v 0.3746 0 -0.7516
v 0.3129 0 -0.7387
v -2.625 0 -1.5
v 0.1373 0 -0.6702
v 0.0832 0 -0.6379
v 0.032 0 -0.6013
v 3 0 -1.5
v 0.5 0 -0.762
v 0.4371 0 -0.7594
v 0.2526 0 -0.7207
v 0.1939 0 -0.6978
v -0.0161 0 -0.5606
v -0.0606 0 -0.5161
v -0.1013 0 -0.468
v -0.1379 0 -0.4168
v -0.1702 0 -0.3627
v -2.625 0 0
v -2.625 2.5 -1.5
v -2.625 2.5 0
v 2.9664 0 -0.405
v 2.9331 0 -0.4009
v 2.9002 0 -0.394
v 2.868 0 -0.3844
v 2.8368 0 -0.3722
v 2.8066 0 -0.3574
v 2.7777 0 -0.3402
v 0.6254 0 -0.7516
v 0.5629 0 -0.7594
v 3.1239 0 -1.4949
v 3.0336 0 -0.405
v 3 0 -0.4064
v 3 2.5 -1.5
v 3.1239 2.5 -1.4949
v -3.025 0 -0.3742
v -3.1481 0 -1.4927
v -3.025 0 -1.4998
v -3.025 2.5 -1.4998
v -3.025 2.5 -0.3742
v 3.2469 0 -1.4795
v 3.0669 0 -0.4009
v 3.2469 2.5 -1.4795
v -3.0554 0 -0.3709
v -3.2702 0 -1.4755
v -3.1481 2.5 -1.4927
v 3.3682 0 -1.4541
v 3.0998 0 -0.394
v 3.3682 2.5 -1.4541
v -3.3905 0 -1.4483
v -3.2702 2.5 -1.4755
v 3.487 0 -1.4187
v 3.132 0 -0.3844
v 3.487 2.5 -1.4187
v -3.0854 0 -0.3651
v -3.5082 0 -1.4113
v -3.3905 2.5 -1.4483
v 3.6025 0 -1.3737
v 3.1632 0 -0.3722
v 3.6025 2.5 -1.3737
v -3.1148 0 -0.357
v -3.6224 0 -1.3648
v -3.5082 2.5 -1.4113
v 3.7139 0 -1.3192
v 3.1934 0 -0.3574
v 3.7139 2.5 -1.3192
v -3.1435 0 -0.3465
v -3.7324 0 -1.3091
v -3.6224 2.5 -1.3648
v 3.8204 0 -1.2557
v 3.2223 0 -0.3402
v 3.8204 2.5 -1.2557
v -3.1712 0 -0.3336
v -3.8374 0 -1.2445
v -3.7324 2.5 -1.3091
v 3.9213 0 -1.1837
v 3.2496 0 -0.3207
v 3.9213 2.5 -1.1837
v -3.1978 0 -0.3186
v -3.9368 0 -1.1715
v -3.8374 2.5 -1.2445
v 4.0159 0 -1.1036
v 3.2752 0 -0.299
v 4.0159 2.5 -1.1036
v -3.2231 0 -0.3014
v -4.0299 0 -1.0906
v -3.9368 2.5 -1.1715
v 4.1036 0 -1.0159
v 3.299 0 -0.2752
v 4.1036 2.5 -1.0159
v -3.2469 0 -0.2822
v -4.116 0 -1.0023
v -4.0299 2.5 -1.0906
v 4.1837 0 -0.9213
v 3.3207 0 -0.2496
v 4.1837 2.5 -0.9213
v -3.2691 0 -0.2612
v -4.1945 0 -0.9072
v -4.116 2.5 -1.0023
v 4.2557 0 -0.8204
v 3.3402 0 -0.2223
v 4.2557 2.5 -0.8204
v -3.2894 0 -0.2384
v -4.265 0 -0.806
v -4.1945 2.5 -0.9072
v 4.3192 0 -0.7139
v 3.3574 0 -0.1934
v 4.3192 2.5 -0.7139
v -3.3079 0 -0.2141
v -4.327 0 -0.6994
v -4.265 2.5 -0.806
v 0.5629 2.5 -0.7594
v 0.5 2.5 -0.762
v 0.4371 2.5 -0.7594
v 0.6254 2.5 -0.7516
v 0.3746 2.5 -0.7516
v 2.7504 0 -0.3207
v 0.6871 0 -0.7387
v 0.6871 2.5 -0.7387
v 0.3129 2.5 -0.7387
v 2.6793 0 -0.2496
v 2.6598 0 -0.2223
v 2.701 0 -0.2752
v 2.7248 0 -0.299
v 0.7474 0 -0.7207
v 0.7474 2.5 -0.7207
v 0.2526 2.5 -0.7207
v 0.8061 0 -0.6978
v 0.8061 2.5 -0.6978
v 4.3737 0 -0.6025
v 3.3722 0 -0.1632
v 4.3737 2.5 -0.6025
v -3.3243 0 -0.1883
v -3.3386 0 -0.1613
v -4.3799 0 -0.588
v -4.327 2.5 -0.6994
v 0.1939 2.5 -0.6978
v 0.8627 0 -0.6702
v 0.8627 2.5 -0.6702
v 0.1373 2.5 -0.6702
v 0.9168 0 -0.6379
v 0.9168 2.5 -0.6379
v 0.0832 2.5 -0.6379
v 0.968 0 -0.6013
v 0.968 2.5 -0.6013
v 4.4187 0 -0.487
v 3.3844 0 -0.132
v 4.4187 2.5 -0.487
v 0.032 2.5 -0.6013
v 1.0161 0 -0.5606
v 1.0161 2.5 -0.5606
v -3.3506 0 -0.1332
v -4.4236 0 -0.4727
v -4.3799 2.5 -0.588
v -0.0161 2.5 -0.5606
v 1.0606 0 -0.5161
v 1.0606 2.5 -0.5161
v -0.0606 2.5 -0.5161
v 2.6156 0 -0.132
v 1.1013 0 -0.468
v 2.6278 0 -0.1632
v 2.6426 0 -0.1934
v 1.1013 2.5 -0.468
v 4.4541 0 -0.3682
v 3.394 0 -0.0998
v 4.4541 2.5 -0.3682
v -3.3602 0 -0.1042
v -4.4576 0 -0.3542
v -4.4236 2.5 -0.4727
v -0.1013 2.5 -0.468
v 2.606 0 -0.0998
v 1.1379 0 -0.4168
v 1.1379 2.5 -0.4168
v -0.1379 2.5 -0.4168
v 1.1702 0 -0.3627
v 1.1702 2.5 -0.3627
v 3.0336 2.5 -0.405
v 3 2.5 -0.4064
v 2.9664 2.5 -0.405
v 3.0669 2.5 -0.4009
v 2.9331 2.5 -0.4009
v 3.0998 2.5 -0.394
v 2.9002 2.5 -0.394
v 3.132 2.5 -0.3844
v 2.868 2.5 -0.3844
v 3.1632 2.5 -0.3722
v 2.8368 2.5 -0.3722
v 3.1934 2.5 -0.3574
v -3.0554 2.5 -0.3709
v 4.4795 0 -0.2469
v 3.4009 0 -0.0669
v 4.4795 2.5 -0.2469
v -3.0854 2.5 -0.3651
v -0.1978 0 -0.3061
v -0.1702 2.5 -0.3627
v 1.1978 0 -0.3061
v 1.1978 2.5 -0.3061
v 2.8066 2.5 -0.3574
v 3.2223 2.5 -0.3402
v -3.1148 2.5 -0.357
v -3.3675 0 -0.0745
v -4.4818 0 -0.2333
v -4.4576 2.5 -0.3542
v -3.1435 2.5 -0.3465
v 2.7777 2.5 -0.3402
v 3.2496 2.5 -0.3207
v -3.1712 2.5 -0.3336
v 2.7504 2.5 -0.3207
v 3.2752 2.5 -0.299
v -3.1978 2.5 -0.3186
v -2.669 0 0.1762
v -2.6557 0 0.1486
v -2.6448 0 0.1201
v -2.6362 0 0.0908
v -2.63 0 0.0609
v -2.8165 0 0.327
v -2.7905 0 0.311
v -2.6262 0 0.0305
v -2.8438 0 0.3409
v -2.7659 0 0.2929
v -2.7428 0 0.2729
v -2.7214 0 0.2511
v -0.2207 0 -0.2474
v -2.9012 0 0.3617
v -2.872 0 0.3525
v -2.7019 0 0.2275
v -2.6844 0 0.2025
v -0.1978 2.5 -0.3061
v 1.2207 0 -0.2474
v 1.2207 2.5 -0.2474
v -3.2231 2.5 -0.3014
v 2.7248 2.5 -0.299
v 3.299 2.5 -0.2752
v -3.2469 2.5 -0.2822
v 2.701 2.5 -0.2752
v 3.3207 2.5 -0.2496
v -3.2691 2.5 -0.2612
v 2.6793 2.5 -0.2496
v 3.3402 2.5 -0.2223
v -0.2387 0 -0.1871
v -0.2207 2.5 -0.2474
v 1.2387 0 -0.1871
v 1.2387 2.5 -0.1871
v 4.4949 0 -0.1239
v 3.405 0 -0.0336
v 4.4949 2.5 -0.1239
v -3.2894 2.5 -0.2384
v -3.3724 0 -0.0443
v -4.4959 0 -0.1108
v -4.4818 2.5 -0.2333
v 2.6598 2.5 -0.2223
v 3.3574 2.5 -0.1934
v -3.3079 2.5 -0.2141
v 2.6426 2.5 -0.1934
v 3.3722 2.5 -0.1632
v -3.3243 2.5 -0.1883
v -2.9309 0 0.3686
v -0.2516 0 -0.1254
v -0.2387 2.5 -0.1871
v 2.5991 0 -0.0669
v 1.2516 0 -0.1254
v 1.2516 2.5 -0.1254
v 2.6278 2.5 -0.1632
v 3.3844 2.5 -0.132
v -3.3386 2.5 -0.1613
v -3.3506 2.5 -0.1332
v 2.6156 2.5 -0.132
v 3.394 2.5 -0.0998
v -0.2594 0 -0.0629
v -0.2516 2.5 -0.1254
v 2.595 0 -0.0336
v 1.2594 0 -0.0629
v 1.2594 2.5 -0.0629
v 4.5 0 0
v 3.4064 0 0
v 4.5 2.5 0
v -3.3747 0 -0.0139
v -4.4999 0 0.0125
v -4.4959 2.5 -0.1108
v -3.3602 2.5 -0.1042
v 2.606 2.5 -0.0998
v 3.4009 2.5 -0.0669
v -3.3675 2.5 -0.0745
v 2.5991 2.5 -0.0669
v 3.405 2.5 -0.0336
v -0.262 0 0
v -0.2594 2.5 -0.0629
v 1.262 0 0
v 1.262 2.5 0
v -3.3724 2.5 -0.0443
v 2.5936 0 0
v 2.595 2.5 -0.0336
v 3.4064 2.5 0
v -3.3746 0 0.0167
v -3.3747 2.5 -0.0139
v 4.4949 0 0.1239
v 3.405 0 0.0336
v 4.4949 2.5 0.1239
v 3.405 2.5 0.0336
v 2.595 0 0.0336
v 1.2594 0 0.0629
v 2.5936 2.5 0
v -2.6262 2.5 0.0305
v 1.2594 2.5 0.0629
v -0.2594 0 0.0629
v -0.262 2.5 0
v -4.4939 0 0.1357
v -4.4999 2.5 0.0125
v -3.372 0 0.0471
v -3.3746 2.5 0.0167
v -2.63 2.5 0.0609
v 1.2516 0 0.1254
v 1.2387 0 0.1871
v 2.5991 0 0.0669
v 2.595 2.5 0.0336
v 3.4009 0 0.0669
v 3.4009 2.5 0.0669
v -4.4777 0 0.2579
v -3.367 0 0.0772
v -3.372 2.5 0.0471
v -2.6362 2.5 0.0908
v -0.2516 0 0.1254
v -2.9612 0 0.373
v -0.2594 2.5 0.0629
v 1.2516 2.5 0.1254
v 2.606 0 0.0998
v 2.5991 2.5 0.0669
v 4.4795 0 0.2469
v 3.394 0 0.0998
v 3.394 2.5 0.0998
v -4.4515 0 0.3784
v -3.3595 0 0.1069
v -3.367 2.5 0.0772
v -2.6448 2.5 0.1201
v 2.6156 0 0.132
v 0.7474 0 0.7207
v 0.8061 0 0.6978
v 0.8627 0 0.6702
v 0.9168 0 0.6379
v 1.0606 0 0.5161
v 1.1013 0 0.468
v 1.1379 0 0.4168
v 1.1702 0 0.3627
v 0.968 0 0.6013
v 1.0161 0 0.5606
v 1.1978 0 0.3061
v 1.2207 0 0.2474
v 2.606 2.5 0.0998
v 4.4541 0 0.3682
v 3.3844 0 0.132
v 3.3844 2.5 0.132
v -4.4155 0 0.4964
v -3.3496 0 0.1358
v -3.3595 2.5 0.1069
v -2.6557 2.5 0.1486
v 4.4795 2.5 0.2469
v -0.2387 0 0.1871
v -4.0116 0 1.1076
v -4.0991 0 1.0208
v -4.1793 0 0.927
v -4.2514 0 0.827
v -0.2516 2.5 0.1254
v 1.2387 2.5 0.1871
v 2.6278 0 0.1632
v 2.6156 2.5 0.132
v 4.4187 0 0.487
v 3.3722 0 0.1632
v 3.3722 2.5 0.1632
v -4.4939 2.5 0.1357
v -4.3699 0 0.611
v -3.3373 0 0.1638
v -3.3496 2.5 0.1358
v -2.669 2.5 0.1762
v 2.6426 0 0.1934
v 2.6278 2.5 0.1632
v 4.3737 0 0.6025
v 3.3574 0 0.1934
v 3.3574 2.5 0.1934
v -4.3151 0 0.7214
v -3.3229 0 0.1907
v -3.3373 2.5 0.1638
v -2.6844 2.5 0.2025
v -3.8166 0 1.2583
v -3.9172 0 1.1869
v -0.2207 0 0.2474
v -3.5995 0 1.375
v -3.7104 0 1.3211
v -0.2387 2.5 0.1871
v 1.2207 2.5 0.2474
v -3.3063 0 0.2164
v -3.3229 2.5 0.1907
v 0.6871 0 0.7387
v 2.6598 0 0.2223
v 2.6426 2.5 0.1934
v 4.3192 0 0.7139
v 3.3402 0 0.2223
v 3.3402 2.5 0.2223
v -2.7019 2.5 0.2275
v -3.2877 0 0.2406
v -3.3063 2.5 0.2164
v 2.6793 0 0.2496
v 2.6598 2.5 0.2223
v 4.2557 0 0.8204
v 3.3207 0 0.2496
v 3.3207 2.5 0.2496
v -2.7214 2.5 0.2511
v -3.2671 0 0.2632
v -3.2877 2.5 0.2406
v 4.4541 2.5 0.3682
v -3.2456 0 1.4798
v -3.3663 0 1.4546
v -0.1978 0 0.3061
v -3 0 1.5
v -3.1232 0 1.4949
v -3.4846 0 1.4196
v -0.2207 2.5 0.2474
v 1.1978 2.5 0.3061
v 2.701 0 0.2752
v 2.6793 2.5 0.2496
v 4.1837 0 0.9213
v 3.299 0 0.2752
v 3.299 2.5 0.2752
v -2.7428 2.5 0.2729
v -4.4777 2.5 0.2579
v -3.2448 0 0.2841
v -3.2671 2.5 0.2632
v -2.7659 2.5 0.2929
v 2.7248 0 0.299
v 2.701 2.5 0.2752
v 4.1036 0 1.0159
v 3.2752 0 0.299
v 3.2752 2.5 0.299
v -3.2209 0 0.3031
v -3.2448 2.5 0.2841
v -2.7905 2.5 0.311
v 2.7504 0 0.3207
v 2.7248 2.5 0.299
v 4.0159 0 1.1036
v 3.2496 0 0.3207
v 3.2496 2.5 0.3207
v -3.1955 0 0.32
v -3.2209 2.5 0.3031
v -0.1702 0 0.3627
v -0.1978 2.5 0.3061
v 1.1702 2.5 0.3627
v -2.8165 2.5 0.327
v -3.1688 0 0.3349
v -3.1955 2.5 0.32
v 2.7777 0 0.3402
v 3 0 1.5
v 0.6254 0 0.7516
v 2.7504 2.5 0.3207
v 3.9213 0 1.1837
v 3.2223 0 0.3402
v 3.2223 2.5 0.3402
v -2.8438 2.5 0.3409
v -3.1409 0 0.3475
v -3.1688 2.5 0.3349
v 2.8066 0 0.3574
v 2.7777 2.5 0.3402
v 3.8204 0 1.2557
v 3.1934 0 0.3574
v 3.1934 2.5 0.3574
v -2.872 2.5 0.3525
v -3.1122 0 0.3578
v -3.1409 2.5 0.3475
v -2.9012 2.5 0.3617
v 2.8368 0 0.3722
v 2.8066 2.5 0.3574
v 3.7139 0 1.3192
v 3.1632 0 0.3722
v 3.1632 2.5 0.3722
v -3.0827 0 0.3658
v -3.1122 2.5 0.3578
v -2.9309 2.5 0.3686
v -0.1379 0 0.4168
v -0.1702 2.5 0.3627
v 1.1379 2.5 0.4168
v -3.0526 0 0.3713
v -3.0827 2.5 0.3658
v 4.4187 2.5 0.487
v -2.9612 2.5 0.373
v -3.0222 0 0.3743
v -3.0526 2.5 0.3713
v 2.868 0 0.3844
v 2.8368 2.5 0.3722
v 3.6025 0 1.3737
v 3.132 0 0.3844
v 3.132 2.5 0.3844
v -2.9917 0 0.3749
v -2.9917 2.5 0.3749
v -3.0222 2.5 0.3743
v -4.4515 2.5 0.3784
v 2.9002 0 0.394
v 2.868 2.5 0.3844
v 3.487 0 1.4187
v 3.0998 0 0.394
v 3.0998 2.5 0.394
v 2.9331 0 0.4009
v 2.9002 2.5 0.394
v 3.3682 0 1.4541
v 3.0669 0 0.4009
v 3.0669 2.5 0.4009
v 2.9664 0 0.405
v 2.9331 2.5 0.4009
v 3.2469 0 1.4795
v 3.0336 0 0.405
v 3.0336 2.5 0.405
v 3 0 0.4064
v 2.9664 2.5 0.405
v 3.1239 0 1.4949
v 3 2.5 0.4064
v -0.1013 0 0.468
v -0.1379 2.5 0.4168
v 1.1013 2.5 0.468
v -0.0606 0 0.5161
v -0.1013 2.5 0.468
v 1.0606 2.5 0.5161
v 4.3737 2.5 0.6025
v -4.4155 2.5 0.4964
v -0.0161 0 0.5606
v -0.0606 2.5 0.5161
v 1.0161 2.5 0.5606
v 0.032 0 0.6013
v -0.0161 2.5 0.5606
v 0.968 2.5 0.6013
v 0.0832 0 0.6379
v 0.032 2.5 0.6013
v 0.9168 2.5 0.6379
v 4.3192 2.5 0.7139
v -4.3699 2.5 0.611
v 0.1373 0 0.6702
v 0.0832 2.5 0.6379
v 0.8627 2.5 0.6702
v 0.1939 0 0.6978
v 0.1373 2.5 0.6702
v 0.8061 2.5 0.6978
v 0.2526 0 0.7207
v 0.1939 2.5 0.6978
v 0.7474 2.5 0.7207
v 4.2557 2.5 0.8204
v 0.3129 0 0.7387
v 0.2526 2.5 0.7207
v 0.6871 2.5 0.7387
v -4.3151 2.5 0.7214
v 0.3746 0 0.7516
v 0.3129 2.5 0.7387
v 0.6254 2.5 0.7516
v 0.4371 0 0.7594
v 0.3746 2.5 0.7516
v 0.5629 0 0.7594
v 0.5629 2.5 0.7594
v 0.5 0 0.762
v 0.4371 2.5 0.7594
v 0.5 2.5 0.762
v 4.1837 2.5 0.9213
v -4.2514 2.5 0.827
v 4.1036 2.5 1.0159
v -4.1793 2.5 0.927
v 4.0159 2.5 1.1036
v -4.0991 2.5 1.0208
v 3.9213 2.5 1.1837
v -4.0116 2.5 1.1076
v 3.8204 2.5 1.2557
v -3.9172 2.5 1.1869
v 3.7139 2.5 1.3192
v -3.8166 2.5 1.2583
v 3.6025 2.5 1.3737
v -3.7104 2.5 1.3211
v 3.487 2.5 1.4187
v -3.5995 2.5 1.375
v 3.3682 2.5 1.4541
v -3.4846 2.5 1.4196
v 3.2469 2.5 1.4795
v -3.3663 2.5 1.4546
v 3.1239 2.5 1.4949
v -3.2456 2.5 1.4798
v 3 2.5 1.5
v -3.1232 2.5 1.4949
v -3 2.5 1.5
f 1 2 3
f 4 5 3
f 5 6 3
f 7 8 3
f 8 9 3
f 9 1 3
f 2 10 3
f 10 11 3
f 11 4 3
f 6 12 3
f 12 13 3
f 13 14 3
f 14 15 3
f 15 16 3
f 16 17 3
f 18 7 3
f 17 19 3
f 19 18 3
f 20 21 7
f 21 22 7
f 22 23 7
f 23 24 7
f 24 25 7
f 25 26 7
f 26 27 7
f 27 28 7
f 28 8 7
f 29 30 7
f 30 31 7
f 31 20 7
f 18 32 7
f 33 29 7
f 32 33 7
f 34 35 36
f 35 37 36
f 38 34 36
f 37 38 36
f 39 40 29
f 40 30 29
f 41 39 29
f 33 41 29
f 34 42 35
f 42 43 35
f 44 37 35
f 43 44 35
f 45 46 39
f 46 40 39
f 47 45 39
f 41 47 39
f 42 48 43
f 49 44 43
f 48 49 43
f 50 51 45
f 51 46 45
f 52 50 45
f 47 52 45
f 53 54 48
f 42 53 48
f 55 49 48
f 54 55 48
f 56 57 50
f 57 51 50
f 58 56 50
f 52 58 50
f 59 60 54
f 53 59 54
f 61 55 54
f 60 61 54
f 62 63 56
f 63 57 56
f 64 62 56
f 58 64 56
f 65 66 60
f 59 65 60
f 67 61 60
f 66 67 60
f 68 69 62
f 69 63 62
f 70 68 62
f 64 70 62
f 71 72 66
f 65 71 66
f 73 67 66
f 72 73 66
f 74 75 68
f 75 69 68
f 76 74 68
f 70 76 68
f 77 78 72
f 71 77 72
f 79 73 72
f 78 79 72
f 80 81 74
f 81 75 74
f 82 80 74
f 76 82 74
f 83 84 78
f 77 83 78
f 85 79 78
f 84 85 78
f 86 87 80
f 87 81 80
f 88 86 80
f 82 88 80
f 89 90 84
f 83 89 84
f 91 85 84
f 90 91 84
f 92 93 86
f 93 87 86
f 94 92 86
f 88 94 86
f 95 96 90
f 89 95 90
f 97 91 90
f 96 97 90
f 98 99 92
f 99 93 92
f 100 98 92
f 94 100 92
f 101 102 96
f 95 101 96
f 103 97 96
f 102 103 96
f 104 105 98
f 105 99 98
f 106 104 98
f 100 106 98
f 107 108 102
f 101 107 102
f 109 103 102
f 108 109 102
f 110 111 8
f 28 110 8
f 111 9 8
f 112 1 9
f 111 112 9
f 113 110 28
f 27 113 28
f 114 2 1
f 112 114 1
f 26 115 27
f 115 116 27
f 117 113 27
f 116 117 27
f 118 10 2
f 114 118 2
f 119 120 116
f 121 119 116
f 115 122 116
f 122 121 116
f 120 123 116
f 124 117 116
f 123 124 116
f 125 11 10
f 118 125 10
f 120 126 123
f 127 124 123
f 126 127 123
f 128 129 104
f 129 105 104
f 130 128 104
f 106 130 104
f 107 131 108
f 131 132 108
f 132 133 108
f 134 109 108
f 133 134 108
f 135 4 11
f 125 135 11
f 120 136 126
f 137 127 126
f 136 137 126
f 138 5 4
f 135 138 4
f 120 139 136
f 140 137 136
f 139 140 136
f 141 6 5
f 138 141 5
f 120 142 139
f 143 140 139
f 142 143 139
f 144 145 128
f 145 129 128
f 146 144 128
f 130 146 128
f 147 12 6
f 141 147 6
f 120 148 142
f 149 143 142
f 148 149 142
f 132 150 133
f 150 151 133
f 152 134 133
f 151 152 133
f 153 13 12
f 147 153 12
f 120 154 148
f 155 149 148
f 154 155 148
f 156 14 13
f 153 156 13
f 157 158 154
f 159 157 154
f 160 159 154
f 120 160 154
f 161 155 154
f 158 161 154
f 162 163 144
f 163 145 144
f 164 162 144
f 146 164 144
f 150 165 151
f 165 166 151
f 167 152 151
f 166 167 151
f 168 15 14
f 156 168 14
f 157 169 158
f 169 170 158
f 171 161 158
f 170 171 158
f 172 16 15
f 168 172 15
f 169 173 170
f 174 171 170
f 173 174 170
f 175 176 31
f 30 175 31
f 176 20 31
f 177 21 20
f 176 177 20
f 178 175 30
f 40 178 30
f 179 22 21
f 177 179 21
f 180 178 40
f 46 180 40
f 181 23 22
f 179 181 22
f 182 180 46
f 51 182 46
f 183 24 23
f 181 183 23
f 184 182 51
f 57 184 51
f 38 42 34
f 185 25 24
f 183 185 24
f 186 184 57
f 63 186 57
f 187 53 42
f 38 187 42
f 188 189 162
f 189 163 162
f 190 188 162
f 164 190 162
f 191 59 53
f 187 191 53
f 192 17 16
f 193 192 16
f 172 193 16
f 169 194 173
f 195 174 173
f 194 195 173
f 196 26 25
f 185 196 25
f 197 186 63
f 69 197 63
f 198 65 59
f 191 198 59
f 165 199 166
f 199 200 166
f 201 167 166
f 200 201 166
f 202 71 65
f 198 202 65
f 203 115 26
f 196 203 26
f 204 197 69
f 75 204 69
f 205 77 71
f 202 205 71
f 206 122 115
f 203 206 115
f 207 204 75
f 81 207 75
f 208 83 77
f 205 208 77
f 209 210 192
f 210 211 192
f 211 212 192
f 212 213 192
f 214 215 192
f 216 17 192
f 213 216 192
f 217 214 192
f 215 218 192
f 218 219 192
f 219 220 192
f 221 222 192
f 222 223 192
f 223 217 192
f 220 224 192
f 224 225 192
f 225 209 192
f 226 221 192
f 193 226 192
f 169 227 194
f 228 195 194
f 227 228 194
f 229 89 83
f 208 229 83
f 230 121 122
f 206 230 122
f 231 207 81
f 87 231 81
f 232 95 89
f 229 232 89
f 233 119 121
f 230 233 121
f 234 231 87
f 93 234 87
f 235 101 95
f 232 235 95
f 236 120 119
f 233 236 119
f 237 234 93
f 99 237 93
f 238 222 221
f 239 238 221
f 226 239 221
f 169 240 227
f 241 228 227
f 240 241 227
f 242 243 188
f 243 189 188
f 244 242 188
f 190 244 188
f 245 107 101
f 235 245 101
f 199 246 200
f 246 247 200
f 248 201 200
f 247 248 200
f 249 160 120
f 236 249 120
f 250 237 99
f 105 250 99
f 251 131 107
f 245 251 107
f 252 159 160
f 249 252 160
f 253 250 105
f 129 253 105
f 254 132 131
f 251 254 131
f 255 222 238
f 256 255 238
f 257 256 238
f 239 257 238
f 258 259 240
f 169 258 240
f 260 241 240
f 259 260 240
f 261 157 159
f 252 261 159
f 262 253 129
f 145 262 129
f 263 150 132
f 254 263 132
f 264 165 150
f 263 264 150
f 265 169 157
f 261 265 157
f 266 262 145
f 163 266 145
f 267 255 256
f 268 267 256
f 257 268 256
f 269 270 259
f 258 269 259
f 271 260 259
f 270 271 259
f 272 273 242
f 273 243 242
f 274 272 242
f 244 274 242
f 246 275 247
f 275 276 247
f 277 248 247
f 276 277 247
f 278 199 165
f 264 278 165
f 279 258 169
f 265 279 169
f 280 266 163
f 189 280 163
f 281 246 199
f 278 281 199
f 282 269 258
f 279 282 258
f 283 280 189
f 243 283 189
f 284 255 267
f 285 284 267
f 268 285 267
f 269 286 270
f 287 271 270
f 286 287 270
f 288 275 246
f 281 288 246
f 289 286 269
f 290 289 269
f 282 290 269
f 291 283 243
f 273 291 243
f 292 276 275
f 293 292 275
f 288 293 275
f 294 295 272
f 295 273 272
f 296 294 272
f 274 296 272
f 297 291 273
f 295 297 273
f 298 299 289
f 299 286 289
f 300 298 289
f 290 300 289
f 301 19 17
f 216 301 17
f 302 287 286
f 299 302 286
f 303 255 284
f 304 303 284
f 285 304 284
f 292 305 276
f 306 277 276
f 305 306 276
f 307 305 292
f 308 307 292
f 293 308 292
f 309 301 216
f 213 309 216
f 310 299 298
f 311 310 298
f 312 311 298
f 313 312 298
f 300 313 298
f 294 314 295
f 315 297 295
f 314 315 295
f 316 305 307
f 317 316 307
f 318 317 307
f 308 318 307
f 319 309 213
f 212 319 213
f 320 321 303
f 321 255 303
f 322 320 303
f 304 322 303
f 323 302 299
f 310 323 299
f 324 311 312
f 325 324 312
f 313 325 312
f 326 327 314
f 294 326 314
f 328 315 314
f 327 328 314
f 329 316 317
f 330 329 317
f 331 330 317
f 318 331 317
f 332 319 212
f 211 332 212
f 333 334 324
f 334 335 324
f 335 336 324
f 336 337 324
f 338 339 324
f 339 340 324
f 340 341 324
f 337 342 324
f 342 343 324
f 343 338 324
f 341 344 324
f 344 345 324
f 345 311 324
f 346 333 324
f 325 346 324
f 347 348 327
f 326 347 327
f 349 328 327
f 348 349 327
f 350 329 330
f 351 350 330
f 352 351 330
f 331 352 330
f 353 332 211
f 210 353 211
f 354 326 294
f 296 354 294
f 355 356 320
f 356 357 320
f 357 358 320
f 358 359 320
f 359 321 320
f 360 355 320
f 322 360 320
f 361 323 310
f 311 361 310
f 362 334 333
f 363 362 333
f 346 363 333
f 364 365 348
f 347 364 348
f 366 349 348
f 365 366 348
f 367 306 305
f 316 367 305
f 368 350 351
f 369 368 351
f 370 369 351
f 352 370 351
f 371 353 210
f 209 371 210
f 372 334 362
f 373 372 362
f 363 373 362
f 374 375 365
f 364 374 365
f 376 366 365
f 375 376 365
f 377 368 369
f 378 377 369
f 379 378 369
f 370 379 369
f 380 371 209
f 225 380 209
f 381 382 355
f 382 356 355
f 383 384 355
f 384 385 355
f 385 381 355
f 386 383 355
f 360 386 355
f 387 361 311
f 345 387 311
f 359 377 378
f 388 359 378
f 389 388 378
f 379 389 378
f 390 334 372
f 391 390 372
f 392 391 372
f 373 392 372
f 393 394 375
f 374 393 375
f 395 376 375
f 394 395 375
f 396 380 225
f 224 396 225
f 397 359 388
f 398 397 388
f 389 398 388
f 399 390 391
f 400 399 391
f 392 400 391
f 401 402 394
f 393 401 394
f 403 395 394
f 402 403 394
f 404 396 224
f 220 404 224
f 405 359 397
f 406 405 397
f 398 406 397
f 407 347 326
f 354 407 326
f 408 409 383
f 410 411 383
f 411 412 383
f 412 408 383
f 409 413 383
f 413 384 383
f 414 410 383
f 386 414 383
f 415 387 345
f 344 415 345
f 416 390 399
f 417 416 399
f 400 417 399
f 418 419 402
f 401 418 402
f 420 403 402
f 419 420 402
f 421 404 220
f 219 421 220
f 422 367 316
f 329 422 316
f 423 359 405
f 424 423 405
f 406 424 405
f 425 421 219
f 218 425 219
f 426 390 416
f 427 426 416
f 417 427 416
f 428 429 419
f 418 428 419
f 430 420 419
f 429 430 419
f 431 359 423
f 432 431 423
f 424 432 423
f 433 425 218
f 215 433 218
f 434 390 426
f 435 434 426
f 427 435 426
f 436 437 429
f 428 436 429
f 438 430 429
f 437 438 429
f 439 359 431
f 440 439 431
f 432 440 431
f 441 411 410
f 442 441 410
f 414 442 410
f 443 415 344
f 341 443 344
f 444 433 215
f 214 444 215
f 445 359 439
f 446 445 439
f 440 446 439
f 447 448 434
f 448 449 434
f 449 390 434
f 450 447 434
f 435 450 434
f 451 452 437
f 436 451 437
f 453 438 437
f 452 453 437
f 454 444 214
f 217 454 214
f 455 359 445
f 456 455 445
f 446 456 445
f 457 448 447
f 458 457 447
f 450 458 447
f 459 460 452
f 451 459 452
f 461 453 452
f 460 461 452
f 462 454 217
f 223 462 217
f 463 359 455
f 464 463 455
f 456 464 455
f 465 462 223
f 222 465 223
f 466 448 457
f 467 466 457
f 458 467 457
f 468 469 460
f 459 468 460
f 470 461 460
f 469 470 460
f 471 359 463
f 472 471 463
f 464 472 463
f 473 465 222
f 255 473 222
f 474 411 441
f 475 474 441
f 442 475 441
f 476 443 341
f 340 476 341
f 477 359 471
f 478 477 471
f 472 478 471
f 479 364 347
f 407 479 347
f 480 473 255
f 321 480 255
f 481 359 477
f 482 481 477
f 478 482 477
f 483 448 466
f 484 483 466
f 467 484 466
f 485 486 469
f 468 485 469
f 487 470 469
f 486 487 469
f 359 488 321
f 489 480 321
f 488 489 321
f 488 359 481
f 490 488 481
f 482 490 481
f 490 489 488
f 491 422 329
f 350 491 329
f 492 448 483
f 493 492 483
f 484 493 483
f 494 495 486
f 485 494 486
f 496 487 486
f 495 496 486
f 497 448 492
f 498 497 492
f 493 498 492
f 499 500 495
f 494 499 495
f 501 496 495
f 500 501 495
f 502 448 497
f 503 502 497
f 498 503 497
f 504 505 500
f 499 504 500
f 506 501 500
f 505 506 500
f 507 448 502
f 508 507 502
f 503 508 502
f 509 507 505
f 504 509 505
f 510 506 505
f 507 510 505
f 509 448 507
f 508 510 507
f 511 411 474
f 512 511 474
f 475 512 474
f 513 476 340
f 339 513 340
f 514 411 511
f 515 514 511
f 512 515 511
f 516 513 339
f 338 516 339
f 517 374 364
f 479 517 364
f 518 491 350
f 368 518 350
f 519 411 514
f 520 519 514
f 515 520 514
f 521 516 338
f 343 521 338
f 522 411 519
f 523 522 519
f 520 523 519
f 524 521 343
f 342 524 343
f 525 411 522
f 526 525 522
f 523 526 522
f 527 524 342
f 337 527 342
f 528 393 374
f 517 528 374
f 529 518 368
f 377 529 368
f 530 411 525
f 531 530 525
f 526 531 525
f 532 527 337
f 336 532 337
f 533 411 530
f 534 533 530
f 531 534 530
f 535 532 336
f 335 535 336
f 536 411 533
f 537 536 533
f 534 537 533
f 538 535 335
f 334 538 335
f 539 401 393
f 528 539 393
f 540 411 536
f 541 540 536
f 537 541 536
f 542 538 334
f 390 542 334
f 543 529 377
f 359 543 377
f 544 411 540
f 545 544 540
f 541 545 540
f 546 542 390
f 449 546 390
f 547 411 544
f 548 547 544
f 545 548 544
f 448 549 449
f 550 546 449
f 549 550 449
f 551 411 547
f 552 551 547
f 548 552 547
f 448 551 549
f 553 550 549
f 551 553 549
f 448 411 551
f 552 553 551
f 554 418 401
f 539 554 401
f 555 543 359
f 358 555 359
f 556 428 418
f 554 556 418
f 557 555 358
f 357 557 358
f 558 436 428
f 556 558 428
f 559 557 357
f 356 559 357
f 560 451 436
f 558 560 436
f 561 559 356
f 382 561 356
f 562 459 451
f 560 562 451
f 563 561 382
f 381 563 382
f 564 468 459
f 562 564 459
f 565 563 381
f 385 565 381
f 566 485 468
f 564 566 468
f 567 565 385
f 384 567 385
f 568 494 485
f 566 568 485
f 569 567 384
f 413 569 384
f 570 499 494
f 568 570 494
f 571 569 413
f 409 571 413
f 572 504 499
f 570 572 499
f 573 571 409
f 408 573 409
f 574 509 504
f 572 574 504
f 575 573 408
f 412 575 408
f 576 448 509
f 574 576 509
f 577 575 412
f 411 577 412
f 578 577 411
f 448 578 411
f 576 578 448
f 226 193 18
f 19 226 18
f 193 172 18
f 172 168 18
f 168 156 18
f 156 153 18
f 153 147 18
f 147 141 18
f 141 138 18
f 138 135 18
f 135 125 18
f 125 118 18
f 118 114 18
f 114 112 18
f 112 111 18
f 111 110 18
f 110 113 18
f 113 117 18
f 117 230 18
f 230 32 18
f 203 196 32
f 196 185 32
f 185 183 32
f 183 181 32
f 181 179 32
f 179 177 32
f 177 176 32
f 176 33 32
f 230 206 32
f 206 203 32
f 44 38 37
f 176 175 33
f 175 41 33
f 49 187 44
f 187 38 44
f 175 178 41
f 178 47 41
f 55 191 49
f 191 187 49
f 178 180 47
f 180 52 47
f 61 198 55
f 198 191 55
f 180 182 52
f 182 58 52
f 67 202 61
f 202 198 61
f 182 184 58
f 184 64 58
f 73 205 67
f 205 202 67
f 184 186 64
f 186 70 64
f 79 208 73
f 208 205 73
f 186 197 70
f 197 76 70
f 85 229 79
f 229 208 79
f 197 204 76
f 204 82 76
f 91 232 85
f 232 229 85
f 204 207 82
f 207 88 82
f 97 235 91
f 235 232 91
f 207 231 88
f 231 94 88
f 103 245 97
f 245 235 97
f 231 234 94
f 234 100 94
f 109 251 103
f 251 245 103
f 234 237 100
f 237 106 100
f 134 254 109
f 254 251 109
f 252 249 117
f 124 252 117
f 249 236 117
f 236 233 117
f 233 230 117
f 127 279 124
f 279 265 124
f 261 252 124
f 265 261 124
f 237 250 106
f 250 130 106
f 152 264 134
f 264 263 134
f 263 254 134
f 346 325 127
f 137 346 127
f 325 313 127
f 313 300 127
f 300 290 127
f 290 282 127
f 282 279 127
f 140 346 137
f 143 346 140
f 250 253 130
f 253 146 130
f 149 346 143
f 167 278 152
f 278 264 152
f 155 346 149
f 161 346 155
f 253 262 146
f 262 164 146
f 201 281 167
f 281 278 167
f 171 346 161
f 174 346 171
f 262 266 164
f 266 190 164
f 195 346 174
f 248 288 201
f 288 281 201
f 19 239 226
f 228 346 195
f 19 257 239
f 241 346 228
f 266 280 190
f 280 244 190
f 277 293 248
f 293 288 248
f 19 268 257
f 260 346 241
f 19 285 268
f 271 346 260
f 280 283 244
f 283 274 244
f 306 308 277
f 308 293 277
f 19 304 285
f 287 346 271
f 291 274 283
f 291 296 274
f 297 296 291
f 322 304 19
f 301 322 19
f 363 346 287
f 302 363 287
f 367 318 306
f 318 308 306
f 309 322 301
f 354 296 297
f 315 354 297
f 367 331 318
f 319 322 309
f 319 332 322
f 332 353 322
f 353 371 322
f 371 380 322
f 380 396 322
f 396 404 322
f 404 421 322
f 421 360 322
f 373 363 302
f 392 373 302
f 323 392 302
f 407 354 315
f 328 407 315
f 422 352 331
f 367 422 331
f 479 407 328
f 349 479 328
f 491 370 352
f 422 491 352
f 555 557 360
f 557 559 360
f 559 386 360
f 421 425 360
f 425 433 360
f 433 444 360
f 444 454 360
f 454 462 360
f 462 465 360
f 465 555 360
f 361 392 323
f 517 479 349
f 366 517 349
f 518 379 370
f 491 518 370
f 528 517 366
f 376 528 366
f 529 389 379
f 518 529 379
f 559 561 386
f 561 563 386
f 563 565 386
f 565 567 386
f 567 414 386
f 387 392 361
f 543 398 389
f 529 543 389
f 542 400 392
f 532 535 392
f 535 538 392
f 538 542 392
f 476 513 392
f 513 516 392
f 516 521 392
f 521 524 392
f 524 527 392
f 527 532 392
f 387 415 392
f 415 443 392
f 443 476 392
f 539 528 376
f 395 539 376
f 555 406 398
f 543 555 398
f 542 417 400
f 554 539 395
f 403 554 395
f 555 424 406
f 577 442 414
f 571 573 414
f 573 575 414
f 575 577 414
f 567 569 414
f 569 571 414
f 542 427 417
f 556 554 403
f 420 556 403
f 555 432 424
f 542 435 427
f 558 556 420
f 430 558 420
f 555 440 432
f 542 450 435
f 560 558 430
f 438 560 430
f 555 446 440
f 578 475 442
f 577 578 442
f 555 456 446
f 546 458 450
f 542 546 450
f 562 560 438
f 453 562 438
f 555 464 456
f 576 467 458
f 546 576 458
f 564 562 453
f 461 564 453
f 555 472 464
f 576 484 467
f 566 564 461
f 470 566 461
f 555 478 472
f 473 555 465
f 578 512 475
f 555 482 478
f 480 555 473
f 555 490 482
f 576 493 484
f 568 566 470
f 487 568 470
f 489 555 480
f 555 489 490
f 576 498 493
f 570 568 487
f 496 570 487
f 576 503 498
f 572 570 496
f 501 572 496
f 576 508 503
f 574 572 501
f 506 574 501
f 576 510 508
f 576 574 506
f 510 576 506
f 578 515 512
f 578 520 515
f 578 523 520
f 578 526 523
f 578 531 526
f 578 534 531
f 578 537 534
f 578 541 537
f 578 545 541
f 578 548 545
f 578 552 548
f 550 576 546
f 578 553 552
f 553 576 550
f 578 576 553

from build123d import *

# Parameters (mm, degrees)
SKETCH1_R           = 0.762
SKETCH1_R_2         = 0.4064
SKETCH1_R_3         = 0.375
BOSS_EXTRUDE1_DEPTH = 2.5
SKETCH2_W           = 0.4
SKETCH2_H           = 2.5
CUT_EXTRUDE1_DEPTH  = 6.361902647


with BuildPart() as part:
    # Sketch1 → Boss-Extrude1 (new body)
    with BuildSketch(Plane(origin=(0, 0, 0), x_dir=(1, 0, 0), z_dir=(0, 1, 0))):
        with BuildLine():
            Line((-3, 1.5), (3, 1.5))
            ThreePointArc((3, 1.5), (4.5, 0), (3, -1.5))
            Line((3, -1.5), (-3, -1.5))
            ThreePointArc((-3, -1.5), (-4.5, 0), (-3, 1.5))
        make_face()
        with Locations(Location((0.5, 0, 0), (0, 0, 270))):
            Circle(SKETCH1_R, mode=Mode.SUBTRACT)
        with Locations(Location((3, 0, 0), (0, 0, 270))):
            Circle(SKETCH1_R_2, mode=Mode.SUBTRACT)
        with Locations(Location((-3, 0, 0), (0, 0, 270))):
            Circle(SKETCH1_R_3, mode=Mode.SUBTRACT)
    extrude(amount=BOSS_EXTRUDE1_DEPTH)

    # Sketch2 → Cut-Extrude1 (cut, through all)
    with BuildSketch(Plane.XZ):
        with Locations((-2.825, -1.25)):
            Rectangle(SKETCH2_W, SKETCH2_H)
    extrude(amount=-CUT_EXTRUDE1_DEPTH, mode=Mode.SUBTRACT)


solid = part.part
